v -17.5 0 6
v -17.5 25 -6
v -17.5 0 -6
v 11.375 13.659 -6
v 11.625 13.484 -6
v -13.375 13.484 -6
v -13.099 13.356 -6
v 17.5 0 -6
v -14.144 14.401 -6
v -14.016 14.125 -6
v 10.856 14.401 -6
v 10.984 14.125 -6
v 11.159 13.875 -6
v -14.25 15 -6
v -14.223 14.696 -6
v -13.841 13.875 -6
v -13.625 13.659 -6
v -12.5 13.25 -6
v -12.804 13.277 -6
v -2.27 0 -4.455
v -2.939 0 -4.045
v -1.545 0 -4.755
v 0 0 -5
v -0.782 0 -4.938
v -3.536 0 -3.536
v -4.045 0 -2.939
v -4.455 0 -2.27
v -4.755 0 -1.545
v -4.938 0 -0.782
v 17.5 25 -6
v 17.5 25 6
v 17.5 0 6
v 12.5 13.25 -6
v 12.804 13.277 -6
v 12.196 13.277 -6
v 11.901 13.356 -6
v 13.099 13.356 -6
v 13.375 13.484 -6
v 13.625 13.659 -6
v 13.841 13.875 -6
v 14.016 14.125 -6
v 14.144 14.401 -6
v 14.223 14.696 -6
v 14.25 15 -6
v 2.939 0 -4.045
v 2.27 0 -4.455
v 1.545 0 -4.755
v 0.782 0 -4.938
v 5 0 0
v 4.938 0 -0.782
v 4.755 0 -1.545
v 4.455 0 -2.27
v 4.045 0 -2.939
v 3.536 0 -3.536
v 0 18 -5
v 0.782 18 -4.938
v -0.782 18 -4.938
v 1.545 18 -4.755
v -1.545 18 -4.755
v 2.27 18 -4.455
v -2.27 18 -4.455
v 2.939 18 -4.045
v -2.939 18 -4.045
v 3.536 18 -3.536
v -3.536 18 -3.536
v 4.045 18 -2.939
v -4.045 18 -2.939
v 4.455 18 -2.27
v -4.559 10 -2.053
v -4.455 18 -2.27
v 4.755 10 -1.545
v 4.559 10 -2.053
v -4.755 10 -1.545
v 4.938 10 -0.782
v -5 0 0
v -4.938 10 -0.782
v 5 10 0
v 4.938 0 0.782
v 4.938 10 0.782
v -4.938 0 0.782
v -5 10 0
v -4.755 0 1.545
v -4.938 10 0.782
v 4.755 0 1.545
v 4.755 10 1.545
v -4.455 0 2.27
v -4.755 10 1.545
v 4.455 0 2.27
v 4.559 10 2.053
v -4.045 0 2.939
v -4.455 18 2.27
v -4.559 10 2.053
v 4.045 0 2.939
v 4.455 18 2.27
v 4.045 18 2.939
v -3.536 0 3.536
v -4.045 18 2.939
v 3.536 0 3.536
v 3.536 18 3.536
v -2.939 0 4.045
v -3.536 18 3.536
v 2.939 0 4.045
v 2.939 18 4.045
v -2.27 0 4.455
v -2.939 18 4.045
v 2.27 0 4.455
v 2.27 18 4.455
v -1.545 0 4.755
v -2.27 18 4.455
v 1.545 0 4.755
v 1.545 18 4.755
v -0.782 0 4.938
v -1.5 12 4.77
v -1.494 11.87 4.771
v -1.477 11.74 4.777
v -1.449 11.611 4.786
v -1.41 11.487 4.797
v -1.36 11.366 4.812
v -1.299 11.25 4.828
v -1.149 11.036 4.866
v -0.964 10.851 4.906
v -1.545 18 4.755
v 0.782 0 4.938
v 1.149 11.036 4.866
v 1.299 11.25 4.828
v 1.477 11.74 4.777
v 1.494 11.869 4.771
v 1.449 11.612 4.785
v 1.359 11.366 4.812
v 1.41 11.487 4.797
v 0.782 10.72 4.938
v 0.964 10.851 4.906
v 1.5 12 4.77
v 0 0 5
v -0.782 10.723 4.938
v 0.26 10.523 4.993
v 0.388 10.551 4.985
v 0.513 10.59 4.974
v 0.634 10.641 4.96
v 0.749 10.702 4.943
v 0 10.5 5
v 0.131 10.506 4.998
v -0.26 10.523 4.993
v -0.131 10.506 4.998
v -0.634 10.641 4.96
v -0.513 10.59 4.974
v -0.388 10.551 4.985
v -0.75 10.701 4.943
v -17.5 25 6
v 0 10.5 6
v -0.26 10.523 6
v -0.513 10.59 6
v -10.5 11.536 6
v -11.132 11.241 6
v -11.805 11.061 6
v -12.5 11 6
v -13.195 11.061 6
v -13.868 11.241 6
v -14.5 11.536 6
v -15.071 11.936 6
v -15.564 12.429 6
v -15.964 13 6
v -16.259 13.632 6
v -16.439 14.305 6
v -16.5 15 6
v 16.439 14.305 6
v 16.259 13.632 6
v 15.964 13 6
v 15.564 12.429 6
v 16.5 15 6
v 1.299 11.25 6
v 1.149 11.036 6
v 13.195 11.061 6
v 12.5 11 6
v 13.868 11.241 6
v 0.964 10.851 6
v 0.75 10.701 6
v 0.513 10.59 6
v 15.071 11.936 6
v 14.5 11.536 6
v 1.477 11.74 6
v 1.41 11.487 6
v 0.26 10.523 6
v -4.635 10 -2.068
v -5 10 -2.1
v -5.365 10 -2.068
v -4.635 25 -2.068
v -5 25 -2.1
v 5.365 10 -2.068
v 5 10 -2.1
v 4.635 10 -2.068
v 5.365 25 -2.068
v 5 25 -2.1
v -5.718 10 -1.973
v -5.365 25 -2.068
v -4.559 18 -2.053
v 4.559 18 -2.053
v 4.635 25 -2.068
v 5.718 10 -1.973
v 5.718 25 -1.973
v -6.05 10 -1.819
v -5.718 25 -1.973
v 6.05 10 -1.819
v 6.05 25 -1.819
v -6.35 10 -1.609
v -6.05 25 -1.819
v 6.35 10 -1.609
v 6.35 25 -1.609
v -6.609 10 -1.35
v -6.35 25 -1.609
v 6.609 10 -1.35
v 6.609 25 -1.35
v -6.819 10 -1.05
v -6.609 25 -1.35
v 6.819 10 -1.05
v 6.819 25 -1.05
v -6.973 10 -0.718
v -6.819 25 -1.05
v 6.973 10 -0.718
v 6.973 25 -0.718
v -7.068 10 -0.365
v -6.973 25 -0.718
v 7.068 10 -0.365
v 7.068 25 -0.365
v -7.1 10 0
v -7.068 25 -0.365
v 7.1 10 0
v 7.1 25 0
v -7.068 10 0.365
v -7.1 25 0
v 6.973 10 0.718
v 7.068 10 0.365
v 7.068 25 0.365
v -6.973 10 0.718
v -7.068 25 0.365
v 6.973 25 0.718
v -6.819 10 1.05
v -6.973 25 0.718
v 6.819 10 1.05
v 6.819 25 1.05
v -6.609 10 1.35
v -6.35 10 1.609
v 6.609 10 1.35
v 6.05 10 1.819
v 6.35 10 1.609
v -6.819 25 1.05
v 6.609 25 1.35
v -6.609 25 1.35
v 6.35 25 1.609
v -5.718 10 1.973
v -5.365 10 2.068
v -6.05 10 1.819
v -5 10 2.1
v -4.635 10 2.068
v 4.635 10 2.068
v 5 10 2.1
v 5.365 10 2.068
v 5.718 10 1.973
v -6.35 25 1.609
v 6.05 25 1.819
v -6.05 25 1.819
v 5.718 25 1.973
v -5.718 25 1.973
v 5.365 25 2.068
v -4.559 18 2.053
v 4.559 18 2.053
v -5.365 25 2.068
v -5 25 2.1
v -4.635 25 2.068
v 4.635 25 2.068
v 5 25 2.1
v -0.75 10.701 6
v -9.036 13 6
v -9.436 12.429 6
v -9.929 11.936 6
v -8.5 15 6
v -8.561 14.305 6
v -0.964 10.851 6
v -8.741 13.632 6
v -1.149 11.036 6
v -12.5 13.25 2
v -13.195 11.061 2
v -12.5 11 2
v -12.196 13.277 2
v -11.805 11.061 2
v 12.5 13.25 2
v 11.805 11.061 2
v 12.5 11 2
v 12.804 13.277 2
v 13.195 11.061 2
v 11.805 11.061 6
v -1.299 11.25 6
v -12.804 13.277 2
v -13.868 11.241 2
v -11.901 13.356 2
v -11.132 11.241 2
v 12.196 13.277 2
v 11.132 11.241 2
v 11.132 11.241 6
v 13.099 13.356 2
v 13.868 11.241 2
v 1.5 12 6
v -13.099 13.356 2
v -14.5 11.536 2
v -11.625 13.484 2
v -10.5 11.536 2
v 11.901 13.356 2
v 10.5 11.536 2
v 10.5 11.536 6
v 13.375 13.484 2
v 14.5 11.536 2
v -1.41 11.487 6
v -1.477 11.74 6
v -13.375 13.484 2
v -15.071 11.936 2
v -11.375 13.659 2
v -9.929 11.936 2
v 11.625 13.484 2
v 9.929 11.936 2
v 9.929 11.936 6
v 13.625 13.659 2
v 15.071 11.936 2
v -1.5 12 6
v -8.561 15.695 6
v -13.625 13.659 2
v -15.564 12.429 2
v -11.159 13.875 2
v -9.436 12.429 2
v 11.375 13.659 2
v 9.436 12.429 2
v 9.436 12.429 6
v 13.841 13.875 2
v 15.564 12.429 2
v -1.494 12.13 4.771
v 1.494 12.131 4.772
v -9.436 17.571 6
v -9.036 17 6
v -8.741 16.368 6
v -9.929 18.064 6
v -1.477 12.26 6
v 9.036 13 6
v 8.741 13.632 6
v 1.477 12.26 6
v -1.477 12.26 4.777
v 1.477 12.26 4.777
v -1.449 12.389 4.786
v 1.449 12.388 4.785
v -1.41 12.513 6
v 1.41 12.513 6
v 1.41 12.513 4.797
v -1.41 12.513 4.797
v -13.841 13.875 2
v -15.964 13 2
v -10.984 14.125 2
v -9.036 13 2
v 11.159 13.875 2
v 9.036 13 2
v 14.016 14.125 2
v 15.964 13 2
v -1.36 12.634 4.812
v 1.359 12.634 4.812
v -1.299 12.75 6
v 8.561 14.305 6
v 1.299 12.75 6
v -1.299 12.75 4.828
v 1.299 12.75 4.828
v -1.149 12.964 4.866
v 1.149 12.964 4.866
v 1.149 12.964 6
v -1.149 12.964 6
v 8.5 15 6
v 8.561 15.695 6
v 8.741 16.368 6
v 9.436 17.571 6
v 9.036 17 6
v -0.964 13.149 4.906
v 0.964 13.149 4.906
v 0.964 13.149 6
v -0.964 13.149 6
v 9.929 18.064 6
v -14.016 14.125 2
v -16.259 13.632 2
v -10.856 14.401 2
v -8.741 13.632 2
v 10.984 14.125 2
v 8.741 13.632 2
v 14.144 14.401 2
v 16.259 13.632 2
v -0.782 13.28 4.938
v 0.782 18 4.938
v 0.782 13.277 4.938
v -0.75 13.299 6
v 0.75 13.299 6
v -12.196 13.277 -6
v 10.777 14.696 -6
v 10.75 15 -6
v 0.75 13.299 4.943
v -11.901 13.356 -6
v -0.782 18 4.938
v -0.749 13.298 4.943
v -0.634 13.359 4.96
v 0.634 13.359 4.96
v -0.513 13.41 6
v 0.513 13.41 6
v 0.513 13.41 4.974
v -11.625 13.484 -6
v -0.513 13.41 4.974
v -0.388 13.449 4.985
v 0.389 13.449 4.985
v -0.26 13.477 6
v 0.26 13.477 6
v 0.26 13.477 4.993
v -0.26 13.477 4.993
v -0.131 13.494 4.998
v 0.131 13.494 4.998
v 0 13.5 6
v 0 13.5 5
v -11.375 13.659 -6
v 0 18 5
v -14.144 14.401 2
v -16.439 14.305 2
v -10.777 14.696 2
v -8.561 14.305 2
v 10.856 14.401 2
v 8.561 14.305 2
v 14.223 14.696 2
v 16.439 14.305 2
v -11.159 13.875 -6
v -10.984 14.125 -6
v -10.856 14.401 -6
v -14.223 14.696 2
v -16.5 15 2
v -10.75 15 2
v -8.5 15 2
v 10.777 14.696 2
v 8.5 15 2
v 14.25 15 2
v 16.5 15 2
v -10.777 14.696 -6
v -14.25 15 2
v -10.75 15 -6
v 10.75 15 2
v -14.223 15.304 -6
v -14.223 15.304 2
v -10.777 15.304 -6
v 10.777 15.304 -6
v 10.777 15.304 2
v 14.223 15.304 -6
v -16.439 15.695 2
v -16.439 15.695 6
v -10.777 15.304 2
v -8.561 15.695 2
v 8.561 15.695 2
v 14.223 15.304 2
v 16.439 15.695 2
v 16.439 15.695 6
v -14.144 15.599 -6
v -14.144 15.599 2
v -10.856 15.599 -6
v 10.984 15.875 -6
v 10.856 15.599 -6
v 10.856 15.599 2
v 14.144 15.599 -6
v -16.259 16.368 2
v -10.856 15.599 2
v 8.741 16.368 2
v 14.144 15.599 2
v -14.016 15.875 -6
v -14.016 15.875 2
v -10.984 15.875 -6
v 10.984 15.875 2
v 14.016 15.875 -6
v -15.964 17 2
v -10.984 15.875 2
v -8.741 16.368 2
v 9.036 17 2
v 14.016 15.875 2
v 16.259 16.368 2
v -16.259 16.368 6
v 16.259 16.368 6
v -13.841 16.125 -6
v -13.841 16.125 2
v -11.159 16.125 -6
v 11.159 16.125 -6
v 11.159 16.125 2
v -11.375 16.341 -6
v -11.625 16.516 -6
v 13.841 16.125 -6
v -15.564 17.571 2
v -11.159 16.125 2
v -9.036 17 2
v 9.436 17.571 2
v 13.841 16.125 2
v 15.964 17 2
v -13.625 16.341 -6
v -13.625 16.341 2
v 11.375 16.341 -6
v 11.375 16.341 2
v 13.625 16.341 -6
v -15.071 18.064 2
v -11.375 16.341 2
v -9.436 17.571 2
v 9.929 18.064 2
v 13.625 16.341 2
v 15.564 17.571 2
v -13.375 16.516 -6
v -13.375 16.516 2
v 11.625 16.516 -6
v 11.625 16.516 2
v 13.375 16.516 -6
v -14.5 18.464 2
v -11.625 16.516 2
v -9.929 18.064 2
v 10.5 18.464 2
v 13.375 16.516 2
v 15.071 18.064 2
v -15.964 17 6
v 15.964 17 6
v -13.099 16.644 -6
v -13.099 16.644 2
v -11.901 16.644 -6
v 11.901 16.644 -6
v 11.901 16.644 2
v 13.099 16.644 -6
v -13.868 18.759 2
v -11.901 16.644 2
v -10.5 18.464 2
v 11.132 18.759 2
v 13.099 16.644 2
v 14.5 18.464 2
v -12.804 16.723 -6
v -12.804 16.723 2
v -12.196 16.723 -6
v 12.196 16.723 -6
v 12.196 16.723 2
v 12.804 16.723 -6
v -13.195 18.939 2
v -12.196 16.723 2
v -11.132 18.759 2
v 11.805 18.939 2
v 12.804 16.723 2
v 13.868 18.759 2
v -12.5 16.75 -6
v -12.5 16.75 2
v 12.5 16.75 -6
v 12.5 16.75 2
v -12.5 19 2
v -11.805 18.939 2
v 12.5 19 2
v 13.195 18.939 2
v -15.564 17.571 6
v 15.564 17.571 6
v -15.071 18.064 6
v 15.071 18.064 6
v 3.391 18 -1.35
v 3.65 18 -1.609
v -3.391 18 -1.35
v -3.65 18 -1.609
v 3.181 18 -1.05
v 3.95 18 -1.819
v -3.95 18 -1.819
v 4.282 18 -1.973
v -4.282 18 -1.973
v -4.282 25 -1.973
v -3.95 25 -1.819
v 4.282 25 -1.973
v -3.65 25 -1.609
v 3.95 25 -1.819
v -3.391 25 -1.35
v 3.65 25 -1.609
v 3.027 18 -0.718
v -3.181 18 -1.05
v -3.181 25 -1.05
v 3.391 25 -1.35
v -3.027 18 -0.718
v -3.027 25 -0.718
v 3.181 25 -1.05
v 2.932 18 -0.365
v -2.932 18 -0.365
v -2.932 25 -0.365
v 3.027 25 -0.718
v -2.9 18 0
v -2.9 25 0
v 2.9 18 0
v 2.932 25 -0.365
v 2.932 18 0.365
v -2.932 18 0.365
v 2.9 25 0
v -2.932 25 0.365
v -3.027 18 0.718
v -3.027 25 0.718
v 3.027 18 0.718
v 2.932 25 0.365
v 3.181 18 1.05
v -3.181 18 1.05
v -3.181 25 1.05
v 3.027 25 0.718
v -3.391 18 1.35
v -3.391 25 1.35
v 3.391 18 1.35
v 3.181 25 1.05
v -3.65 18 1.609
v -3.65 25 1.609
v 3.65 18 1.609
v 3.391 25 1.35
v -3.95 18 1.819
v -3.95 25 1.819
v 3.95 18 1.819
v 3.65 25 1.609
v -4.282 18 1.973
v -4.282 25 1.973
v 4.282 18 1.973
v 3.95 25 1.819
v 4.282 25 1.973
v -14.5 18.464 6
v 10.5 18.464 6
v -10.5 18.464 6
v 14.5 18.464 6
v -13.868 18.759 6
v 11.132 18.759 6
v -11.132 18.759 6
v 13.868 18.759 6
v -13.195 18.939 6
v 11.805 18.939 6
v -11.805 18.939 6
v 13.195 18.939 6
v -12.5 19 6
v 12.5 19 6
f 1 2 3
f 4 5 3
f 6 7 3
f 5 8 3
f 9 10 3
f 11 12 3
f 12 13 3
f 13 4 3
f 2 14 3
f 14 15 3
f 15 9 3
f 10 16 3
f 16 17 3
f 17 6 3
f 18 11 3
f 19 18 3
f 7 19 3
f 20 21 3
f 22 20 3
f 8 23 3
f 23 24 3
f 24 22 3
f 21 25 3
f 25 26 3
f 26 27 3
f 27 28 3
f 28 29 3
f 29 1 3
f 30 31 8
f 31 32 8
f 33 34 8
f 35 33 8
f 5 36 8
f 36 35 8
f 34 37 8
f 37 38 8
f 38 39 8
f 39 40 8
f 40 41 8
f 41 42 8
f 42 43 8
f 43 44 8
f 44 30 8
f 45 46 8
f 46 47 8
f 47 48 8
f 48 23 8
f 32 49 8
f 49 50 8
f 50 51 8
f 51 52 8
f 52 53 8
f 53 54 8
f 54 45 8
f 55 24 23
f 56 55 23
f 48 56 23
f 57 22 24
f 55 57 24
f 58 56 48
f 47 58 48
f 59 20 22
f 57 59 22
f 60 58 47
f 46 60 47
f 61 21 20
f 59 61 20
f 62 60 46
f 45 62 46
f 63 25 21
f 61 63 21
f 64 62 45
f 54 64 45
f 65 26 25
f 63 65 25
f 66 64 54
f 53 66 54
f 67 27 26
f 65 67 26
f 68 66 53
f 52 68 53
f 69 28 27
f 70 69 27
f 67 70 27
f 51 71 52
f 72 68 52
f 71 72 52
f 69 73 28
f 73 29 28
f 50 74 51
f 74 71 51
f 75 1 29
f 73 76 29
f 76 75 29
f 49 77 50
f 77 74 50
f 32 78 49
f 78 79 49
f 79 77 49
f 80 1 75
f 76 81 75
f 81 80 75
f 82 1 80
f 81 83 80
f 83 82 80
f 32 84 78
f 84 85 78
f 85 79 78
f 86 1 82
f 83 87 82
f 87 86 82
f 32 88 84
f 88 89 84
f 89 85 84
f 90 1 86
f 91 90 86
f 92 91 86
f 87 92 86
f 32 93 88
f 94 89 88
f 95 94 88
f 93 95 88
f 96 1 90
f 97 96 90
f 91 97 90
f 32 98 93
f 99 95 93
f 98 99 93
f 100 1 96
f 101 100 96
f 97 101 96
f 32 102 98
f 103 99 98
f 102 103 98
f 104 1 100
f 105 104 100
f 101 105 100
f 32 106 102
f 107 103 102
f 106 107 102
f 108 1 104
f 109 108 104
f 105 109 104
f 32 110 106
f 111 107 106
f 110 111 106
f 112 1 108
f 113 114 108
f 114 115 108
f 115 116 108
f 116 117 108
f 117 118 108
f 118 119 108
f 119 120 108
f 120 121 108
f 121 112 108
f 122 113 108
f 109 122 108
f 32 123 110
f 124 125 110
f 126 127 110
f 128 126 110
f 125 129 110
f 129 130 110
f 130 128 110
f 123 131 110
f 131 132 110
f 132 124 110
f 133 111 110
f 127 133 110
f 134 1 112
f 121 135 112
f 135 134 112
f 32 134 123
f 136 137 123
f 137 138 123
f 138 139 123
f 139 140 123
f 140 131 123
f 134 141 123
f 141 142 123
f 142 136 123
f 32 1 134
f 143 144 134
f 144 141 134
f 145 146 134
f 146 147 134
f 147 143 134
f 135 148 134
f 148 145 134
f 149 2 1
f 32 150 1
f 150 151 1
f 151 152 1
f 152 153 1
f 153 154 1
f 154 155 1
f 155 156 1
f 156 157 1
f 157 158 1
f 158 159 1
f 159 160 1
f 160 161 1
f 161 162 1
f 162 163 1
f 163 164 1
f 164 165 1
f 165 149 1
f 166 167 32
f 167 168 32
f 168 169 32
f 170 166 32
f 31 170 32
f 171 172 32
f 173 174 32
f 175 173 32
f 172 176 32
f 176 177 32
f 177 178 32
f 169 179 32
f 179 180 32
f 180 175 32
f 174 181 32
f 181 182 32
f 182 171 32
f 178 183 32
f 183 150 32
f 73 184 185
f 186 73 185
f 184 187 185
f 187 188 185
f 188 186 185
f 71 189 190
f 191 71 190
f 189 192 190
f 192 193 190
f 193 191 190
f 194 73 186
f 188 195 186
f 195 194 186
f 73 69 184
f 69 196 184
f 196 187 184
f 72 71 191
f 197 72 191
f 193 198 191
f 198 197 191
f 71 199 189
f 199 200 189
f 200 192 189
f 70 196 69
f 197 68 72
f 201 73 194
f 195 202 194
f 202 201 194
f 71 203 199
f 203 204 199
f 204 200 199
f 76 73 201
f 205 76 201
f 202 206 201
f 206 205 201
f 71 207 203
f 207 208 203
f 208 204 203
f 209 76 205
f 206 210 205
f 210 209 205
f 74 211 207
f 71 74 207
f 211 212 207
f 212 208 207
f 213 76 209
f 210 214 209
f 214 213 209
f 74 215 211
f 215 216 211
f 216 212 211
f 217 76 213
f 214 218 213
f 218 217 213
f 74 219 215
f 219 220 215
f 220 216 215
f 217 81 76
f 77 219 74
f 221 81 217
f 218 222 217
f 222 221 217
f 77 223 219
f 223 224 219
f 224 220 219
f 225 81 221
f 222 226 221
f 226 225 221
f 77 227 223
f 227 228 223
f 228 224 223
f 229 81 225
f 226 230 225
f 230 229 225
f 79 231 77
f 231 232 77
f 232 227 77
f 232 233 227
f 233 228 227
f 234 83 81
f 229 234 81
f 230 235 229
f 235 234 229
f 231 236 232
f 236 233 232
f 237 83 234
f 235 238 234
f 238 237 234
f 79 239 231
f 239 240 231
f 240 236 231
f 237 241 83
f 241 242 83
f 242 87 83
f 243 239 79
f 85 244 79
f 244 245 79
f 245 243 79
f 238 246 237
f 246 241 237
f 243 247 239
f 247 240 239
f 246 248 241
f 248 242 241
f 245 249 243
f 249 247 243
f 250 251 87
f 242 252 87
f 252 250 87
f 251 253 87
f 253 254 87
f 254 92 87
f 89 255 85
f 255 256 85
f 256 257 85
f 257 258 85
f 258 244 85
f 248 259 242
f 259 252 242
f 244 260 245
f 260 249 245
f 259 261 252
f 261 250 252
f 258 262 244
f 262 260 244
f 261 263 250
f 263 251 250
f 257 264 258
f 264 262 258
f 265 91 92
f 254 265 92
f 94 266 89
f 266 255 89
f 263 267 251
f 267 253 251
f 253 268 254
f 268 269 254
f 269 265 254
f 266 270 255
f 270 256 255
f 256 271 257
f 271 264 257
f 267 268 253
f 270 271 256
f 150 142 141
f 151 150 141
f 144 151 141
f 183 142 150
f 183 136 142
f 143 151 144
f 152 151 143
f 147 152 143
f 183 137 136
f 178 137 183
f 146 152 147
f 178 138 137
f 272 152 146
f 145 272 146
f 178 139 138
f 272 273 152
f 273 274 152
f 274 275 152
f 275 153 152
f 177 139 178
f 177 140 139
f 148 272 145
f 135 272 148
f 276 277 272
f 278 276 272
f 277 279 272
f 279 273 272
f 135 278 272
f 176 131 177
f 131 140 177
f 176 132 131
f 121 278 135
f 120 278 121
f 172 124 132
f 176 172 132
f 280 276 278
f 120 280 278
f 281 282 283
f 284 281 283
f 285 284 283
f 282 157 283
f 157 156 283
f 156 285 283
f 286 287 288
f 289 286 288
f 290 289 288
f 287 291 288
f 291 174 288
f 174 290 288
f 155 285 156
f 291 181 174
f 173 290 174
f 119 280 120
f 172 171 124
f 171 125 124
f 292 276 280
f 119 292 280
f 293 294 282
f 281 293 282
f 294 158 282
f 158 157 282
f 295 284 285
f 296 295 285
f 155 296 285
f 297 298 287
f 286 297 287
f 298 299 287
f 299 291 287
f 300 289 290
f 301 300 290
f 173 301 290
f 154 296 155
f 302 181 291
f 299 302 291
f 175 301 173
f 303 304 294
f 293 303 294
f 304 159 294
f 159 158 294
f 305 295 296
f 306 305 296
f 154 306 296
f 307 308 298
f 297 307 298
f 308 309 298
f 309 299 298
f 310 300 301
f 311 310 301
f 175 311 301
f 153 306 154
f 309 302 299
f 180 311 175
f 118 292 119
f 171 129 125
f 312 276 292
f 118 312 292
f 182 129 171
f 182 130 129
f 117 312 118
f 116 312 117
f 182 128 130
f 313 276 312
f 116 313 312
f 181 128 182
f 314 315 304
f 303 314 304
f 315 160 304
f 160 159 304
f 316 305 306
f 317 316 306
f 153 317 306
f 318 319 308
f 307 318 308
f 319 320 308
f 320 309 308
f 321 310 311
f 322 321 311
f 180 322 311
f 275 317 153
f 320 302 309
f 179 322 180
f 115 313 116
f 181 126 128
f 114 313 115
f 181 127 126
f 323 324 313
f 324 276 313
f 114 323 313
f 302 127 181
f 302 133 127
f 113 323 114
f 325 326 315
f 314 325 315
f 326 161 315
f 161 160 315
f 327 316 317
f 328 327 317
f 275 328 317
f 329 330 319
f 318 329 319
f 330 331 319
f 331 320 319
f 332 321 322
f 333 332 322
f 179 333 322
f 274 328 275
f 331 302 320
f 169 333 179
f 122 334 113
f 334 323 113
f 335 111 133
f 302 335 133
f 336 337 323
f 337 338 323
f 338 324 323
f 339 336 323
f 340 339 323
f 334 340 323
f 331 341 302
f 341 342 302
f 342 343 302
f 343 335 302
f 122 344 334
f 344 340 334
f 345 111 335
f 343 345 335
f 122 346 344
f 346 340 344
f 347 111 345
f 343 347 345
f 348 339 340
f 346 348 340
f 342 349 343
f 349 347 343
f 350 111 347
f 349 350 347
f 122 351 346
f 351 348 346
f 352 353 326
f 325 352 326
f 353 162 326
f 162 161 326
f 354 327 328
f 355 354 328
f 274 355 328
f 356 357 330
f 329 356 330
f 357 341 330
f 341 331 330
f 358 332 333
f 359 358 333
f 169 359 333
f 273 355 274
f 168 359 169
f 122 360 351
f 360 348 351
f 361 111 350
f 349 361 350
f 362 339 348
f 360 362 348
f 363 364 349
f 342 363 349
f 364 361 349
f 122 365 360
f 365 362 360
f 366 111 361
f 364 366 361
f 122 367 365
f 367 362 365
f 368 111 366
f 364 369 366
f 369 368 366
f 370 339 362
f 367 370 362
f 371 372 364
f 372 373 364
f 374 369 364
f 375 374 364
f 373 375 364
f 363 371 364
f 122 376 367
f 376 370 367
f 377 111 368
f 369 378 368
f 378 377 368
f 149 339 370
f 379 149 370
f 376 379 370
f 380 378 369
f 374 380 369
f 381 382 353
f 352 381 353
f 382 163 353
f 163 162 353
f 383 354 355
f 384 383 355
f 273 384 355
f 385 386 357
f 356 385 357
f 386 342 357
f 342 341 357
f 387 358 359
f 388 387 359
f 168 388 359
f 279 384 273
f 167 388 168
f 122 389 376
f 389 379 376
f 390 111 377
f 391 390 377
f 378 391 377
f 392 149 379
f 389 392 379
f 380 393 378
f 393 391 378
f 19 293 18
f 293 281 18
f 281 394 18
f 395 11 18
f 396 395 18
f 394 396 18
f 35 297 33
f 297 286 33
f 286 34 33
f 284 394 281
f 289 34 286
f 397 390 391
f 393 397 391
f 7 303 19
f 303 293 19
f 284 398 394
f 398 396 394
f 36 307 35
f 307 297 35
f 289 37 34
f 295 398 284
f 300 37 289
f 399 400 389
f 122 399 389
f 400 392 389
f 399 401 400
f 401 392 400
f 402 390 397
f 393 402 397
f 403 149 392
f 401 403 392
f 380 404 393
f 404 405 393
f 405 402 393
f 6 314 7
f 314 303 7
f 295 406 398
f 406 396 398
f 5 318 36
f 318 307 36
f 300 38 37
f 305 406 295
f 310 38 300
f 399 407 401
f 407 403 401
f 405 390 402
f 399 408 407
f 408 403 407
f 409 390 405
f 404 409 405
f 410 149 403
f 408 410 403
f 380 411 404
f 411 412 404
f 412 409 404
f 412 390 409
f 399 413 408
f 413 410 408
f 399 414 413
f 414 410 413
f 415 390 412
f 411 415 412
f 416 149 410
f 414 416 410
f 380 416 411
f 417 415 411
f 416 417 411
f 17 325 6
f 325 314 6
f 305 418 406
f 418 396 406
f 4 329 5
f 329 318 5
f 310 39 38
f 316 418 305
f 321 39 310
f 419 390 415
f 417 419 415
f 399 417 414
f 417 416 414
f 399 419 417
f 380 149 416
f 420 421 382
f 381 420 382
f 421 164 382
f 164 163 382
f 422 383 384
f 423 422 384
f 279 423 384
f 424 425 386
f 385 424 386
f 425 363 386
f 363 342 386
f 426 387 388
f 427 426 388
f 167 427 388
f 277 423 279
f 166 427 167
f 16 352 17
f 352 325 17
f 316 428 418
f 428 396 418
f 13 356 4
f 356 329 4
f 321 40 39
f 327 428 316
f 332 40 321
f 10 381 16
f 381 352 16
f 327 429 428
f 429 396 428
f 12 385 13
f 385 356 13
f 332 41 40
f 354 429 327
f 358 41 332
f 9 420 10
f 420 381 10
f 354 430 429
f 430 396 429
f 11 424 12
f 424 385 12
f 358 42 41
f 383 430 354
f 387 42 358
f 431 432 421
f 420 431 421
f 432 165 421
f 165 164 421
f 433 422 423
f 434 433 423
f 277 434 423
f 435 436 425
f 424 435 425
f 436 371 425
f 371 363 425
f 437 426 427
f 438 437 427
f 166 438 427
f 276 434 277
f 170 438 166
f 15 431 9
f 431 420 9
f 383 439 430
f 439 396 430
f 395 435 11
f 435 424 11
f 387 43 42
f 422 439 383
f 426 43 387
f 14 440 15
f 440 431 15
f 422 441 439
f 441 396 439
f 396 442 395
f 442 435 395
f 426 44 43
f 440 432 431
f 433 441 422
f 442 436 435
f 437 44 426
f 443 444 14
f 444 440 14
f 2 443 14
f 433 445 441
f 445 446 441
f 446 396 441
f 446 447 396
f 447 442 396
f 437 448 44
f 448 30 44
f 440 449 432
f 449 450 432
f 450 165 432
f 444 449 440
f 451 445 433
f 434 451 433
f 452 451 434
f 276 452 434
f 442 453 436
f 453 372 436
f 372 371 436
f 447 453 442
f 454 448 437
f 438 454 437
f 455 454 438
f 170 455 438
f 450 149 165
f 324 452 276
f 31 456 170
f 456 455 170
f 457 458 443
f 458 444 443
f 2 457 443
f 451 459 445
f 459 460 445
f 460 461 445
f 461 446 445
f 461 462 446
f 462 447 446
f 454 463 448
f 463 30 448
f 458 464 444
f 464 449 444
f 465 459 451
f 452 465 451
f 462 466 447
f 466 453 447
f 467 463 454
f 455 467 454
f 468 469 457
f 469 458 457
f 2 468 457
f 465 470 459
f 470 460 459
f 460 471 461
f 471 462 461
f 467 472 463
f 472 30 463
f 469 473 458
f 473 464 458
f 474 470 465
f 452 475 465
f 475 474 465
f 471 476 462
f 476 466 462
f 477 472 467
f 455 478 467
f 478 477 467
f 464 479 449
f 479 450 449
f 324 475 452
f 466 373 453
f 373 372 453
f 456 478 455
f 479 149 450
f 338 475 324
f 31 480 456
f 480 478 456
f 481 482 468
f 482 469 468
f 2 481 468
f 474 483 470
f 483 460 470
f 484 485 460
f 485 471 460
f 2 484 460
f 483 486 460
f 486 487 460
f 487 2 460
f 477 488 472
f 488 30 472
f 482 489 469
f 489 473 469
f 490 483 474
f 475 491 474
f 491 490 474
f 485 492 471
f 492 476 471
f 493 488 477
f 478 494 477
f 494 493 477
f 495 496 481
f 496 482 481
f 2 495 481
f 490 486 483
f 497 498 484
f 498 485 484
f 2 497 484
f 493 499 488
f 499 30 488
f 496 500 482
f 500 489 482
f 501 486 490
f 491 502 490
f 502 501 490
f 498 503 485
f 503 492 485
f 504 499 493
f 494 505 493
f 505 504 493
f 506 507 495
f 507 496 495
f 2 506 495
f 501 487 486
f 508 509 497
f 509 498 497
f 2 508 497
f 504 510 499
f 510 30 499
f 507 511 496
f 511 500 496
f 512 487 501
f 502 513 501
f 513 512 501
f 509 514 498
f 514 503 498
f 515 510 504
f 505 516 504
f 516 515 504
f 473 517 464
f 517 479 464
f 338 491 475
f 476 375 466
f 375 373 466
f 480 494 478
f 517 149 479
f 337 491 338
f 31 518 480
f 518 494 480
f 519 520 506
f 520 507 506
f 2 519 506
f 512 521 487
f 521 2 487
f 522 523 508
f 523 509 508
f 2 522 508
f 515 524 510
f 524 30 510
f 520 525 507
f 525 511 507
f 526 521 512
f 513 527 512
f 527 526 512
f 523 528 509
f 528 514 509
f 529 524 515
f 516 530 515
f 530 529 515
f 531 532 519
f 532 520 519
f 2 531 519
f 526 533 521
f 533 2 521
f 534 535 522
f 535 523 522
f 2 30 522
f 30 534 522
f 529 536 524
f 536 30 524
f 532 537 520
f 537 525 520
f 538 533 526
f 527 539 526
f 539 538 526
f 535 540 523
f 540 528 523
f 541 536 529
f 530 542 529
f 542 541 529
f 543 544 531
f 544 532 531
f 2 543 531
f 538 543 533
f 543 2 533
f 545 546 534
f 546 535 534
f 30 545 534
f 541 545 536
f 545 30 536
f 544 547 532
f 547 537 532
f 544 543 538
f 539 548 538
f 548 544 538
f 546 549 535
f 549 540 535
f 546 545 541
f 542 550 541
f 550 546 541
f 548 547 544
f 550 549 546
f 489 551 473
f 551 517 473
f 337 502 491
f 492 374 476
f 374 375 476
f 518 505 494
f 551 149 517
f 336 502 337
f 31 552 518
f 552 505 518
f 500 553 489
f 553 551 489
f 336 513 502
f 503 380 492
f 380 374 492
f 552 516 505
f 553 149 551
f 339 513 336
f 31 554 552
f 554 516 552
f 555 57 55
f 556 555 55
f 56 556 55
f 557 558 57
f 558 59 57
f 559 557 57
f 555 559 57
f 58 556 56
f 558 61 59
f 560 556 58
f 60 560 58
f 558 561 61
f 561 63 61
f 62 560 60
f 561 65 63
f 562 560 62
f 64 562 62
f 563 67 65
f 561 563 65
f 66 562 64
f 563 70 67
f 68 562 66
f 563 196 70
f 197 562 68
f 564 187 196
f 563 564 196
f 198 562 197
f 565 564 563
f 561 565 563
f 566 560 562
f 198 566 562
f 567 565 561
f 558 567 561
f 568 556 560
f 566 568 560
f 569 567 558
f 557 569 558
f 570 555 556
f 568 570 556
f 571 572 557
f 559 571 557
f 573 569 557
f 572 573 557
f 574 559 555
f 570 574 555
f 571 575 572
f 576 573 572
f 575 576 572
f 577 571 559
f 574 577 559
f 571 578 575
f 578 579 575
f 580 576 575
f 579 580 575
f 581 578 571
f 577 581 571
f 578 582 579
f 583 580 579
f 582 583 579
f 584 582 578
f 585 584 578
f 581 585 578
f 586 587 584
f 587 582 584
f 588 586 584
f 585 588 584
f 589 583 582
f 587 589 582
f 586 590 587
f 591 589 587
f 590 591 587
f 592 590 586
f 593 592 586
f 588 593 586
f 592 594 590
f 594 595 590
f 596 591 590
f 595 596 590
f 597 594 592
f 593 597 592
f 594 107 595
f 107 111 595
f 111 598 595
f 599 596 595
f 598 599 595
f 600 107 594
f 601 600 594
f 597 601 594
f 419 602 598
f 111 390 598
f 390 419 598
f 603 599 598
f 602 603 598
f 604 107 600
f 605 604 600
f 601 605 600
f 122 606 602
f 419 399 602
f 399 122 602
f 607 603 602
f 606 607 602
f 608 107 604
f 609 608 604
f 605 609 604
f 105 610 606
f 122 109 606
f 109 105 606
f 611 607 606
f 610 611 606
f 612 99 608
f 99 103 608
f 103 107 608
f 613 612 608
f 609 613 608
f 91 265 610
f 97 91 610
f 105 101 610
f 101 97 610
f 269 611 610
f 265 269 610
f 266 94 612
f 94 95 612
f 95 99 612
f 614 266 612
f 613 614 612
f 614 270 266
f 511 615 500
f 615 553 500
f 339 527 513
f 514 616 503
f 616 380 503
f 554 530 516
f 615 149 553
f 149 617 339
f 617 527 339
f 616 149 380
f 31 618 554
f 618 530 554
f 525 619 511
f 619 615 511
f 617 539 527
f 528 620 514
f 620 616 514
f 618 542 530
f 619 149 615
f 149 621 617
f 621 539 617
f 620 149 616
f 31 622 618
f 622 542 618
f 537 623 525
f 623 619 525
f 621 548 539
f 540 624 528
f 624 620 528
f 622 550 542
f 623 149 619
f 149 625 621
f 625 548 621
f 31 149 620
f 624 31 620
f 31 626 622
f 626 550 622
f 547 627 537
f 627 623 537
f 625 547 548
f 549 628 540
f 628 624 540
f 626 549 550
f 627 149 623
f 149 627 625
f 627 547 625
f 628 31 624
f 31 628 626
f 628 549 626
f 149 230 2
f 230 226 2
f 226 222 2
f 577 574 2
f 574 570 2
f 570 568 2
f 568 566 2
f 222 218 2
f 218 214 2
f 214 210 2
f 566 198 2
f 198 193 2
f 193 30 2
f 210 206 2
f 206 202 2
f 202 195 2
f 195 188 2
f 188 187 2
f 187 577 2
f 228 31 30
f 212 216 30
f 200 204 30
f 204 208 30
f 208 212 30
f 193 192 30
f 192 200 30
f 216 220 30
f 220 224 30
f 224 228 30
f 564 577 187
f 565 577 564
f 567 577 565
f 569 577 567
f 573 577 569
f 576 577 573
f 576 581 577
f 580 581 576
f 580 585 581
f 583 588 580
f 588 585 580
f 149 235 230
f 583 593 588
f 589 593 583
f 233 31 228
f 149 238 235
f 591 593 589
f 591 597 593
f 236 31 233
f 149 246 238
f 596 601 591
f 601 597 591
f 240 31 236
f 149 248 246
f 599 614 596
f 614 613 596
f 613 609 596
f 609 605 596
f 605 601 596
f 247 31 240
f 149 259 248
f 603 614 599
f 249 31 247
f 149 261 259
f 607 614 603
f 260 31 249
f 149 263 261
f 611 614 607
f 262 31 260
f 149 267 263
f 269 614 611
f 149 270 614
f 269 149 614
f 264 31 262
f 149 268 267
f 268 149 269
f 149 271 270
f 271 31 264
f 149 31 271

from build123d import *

# Parameters (mm, degrees)
SKETCH1_W           = 35
SKETCH1_H           = 12
BOSS_EXTRUDE1_DEPTH = 25
SKETCH2_R           = 5
CUT_EXTRUDE1_DEPTH  = 18
SKETCH3_R           = 2.1
CUT_EXTRUDE2_DEPTH  = 15
SKETCH4_R           = 1.5
CUT_EXTRUDE3_DEPTH  = 7
SKETCH5_R           = 1.75
CUT_EXTRUDE4_DEPTH  = 13
SKETCH6_R           = 4
CUT_EXTRUDE5_DEPTH  = 4


with BuildPart() as part:
    # Sketch1 → Boss-Extrude1 (new body)
    with BuildSketch(Plane(origin=(0, 0, 0), x_dir=(1, 0, 0), z_dir=(0, 1, 0))):
        Rectangle(SKETCH1_W, SKETCH1_H)
    extrude(amount=BOSS_EXTRUDE1_DEPTH)

    # Sketch2 → Cut-Extrude1 (cut)
    with BuildSketch(Plane.XZ):
        Circle(SKETCH2_R)
    extrude(amount=-CUT_EXTRUDE1_DEPTH, mode=Mode.SUBTRACT)

    # Sketch3 → Cut-Extrude2 (cut)
    with BuildSketch(Plane(origin=(0, 25, 0), x_dir=(1, 0, 0), z_dir=(0, 1, 0))):
        with Locations((-5, 0)):
            Circle(SKETCH3_R)
        with Locations((5, 0)):
            Circle(SKETCH3_R)
    extrude(amount=-CUT_EXTRUDE2_DEPTH, mode=Mode.SUBTRACT)

    # Sketch4 → Cut-Extrude3 (cut)
    with BuildSketch(Plane.XY.offset(6)):
        with Locations((0, 12)):
            Circle(SKETCH4_R)
    extrude(amount=-CUT_EXTRUDE3_DEPTH, mode=Mode.SUBTRACT)

    # Sketch5 → Cut-Extrude4 (cut, through all)
    with BuildSketch(Plane.XY.offset(6)):
        with Locations((-12.5, 15)):
            Circle(SKETCH5_R)
        with Locations((12.5, 15)):
            Circle(SKETCH5_R)
    extrude(amount=-CUT_EXTRUDE4_DEPTH, mode=Mode.SUBTRACT)

    # Sketch6 → Cut-Extrude5 (cut)
    with BuildSketch(Plane.XY.offset(6)):
        with Locations((-12.5, 15)):
            Circle(SKETCH6_R)
        with Locations((12.5, 15)):
            Circle(SKETCH6_R)
    extrude(amount=-CUT_EXTRUDE5_DEPTH, mode=Mode.SUBTRACT)


solid = part.part
